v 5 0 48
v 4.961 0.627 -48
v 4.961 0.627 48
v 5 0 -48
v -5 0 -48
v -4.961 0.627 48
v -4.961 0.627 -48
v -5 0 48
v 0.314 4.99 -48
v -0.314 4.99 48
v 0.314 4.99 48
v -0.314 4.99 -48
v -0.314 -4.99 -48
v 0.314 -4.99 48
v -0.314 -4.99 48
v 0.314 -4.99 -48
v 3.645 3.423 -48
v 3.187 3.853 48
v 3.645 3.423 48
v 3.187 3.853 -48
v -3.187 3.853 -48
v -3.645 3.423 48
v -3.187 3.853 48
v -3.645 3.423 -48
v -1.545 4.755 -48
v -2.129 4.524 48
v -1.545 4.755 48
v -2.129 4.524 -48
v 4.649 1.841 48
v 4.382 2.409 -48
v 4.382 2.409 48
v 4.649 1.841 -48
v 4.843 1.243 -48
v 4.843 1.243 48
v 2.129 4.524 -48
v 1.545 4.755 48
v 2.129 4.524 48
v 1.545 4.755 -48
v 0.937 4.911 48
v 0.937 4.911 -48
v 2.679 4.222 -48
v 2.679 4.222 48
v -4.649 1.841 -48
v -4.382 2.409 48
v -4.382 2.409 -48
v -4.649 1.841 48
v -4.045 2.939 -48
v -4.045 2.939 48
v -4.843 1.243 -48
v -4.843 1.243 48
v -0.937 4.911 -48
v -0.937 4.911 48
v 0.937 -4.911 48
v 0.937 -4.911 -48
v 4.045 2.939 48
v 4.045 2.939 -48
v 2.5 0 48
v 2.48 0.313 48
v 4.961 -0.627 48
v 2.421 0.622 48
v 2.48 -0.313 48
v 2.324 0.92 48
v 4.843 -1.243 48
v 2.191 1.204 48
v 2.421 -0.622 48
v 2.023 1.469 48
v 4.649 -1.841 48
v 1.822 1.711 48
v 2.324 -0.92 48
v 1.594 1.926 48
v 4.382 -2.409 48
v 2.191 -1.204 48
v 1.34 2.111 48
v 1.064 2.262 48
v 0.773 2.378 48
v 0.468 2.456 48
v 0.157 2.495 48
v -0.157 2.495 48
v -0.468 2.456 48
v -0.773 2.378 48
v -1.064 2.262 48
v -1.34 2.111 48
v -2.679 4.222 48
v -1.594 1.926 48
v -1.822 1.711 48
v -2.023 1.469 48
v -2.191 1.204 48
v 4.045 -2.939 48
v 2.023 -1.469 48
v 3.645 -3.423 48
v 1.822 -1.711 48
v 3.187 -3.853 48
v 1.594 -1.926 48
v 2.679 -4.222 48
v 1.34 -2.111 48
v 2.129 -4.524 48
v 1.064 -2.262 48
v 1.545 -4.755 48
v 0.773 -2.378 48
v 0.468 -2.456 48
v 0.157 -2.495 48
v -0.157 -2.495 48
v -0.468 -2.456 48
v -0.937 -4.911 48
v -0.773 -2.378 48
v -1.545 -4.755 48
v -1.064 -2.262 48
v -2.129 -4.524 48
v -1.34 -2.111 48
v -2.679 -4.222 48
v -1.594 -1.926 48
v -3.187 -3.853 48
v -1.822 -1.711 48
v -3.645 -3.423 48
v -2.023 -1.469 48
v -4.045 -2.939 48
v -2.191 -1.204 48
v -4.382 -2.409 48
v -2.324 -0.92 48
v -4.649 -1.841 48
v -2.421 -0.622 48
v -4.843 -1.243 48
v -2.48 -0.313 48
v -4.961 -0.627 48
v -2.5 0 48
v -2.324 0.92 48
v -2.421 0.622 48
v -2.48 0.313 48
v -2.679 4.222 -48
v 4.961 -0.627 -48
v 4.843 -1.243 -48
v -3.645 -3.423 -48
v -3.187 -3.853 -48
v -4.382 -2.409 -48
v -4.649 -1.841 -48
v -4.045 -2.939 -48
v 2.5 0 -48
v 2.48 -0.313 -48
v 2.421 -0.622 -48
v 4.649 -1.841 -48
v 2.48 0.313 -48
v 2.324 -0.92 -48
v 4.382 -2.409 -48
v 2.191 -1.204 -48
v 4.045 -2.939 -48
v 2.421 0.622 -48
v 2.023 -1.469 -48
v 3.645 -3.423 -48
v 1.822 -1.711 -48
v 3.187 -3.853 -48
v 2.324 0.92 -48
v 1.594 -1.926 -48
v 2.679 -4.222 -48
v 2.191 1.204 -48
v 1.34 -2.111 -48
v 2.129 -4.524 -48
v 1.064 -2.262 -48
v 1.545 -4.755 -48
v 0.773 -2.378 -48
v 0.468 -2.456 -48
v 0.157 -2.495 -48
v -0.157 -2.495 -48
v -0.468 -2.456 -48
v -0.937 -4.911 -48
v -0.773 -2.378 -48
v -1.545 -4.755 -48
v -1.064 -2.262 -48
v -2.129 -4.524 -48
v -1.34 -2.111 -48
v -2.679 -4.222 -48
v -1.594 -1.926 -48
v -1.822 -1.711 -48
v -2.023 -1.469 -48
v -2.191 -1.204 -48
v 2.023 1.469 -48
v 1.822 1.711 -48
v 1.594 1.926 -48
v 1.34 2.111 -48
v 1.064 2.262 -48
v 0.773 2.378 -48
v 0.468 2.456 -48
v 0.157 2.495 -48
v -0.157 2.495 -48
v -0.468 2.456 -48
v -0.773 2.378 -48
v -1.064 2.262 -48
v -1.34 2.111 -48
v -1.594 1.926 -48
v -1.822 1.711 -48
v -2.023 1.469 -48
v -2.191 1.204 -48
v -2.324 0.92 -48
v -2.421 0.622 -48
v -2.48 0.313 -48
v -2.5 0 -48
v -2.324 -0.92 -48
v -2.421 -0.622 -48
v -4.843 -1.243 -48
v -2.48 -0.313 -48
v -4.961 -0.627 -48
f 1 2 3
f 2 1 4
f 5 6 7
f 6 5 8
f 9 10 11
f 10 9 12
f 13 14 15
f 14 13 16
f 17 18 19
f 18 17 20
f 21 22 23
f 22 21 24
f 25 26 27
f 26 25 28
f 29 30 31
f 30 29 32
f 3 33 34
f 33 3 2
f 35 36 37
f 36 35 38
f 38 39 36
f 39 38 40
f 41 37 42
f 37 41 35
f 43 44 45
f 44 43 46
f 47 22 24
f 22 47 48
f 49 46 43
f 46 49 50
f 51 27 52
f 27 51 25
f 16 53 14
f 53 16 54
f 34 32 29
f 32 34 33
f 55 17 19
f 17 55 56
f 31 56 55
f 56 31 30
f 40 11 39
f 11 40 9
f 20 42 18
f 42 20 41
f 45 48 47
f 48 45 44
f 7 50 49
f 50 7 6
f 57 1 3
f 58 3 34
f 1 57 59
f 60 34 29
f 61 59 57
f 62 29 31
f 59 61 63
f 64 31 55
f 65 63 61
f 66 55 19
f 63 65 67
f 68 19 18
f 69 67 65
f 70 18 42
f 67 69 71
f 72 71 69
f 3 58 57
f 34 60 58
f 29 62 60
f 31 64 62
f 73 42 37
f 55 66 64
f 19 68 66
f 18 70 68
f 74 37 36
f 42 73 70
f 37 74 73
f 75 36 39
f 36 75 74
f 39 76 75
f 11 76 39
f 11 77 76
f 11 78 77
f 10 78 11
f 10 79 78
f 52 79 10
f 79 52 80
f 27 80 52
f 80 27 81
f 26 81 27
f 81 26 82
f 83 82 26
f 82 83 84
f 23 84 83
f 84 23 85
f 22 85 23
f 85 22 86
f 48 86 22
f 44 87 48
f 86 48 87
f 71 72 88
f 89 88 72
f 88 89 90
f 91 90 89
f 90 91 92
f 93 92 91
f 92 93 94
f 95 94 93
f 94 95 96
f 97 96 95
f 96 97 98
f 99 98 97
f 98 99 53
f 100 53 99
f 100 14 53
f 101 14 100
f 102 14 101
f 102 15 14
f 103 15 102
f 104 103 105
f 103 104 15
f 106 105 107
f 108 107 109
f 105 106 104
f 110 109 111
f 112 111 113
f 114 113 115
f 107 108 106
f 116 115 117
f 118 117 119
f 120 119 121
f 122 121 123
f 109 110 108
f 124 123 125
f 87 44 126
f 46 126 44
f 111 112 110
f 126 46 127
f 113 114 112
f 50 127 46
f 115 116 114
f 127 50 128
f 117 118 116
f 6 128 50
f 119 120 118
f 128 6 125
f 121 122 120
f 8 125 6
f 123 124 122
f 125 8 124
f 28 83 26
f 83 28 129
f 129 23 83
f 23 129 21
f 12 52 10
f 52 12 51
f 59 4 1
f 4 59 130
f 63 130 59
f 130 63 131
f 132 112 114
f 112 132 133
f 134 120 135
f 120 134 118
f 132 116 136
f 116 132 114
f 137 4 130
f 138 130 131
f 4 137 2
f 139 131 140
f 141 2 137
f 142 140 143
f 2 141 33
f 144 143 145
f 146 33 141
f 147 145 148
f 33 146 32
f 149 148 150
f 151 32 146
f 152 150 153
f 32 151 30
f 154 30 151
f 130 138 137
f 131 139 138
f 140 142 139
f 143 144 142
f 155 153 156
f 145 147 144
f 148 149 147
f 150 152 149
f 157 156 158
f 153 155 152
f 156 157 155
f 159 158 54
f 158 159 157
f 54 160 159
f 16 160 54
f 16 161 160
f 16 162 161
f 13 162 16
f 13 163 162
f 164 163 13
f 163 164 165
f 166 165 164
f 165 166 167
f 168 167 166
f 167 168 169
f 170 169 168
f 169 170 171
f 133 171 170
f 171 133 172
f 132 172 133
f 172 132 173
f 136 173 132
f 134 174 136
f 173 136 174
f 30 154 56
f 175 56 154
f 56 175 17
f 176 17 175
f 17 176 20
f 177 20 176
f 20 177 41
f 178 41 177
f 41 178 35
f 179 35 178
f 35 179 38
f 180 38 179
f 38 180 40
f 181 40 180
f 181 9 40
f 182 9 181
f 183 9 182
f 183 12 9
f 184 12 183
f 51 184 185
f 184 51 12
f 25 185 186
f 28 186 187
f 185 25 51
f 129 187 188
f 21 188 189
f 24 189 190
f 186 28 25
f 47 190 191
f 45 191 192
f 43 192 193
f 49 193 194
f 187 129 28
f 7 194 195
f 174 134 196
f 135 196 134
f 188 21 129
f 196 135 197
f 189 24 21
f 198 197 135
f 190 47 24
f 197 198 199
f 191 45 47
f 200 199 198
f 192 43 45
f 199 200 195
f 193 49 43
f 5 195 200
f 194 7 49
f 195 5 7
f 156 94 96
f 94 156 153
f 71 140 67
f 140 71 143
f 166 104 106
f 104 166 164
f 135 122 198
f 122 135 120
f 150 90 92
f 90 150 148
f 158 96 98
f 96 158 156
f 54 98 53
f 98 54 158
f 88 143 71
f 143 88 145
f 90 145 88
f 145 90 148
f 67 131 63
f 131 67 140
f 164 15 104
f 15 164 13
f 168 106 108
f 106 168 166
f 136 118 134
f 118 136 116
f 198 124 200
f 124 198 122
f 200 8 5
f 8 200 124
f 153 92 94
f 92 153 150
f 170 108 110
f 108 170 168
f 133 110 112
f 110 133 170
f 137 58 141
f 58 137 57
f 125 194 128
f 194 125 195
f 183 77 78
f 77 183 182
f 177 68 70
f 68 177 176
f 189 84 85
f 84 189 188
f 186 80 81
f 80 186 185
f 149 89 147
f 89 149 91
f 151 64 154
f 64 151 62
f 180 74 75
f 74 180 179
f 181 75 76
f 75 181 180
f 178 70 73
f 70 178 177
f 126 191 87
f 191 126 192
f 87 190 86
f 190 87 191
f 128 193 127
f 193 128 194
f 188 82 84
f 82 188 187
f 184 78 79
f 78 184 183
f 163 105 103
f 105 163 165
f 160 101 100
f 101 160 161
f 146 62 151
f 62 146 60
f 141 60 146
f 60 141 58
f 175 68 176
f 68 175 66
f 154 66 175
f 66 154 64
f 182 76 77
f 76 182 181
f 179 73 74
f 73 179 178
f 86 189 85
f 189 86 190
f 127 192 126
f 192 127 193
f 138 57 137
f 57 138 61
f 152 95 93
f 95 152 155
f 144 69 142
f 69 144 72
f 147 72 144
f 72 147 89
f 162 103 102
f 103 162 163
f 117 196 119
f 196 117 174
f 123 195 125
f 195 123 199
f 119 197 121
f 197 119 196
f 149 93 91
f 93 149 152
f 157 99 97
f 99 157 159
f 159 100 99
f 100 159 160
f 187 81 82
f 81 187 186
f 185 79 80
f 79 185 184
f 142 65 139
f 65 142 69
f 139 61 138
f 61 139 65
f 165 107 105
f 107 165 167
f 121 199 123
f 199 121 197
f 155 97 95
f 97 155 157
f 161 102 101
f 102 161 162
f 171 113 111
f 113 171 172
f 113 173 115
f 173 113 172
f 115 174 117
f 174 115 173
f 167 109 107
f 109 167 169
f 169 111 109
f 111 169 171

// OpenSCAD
$fn = 50;


difference() {
	union() {
		translate(v = [0, 0, -48.0000000000]) {
			cylinder(h = 96, r = 5.0000000000);
		}
	}
	union() {
		translate(v = [0, 0, -100.0000000000]) {
			cylinder(h = 200, r = 2.5000000000);
		}
	}
}
